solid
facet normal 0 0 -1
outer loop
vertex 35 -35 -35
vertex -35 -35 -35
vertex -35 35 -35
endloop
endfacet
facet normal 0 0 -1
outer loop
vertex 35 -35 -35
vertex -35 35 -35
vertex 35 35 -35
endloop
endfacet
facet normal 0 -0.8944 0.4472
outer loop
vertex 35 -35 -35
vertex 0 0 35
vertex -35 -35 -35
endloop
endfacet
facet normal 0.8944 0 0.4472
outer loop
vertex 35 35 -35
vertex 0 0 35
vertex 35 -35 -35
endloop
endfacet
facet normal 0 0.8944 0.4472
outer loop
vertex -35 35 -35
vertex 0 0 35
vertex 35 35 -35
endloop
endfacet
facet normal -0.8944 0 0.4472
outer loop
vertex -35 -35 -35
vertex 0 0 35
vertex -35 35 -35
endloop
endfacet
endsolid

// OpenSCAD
// file: _common.scad
// orthographic 共用尺寸 / 解析度設定
// 所有物件外接立方控制在 ~80 mm，方便相機固定縮放
$fn = 64;  // 圓面解析度（影響 STL 大小，64 在視覺與大小取得平衡）
CHAMFER = 1.2;  // 標準導角尺寸
// main file
// 金字塔（正四角錐）：底邊 70×70、高 70
include <_common.scad>

translate([0, 0, -35]) linear_extrude(height = 70, scale = 0)
  square([70, 70], center = true);
